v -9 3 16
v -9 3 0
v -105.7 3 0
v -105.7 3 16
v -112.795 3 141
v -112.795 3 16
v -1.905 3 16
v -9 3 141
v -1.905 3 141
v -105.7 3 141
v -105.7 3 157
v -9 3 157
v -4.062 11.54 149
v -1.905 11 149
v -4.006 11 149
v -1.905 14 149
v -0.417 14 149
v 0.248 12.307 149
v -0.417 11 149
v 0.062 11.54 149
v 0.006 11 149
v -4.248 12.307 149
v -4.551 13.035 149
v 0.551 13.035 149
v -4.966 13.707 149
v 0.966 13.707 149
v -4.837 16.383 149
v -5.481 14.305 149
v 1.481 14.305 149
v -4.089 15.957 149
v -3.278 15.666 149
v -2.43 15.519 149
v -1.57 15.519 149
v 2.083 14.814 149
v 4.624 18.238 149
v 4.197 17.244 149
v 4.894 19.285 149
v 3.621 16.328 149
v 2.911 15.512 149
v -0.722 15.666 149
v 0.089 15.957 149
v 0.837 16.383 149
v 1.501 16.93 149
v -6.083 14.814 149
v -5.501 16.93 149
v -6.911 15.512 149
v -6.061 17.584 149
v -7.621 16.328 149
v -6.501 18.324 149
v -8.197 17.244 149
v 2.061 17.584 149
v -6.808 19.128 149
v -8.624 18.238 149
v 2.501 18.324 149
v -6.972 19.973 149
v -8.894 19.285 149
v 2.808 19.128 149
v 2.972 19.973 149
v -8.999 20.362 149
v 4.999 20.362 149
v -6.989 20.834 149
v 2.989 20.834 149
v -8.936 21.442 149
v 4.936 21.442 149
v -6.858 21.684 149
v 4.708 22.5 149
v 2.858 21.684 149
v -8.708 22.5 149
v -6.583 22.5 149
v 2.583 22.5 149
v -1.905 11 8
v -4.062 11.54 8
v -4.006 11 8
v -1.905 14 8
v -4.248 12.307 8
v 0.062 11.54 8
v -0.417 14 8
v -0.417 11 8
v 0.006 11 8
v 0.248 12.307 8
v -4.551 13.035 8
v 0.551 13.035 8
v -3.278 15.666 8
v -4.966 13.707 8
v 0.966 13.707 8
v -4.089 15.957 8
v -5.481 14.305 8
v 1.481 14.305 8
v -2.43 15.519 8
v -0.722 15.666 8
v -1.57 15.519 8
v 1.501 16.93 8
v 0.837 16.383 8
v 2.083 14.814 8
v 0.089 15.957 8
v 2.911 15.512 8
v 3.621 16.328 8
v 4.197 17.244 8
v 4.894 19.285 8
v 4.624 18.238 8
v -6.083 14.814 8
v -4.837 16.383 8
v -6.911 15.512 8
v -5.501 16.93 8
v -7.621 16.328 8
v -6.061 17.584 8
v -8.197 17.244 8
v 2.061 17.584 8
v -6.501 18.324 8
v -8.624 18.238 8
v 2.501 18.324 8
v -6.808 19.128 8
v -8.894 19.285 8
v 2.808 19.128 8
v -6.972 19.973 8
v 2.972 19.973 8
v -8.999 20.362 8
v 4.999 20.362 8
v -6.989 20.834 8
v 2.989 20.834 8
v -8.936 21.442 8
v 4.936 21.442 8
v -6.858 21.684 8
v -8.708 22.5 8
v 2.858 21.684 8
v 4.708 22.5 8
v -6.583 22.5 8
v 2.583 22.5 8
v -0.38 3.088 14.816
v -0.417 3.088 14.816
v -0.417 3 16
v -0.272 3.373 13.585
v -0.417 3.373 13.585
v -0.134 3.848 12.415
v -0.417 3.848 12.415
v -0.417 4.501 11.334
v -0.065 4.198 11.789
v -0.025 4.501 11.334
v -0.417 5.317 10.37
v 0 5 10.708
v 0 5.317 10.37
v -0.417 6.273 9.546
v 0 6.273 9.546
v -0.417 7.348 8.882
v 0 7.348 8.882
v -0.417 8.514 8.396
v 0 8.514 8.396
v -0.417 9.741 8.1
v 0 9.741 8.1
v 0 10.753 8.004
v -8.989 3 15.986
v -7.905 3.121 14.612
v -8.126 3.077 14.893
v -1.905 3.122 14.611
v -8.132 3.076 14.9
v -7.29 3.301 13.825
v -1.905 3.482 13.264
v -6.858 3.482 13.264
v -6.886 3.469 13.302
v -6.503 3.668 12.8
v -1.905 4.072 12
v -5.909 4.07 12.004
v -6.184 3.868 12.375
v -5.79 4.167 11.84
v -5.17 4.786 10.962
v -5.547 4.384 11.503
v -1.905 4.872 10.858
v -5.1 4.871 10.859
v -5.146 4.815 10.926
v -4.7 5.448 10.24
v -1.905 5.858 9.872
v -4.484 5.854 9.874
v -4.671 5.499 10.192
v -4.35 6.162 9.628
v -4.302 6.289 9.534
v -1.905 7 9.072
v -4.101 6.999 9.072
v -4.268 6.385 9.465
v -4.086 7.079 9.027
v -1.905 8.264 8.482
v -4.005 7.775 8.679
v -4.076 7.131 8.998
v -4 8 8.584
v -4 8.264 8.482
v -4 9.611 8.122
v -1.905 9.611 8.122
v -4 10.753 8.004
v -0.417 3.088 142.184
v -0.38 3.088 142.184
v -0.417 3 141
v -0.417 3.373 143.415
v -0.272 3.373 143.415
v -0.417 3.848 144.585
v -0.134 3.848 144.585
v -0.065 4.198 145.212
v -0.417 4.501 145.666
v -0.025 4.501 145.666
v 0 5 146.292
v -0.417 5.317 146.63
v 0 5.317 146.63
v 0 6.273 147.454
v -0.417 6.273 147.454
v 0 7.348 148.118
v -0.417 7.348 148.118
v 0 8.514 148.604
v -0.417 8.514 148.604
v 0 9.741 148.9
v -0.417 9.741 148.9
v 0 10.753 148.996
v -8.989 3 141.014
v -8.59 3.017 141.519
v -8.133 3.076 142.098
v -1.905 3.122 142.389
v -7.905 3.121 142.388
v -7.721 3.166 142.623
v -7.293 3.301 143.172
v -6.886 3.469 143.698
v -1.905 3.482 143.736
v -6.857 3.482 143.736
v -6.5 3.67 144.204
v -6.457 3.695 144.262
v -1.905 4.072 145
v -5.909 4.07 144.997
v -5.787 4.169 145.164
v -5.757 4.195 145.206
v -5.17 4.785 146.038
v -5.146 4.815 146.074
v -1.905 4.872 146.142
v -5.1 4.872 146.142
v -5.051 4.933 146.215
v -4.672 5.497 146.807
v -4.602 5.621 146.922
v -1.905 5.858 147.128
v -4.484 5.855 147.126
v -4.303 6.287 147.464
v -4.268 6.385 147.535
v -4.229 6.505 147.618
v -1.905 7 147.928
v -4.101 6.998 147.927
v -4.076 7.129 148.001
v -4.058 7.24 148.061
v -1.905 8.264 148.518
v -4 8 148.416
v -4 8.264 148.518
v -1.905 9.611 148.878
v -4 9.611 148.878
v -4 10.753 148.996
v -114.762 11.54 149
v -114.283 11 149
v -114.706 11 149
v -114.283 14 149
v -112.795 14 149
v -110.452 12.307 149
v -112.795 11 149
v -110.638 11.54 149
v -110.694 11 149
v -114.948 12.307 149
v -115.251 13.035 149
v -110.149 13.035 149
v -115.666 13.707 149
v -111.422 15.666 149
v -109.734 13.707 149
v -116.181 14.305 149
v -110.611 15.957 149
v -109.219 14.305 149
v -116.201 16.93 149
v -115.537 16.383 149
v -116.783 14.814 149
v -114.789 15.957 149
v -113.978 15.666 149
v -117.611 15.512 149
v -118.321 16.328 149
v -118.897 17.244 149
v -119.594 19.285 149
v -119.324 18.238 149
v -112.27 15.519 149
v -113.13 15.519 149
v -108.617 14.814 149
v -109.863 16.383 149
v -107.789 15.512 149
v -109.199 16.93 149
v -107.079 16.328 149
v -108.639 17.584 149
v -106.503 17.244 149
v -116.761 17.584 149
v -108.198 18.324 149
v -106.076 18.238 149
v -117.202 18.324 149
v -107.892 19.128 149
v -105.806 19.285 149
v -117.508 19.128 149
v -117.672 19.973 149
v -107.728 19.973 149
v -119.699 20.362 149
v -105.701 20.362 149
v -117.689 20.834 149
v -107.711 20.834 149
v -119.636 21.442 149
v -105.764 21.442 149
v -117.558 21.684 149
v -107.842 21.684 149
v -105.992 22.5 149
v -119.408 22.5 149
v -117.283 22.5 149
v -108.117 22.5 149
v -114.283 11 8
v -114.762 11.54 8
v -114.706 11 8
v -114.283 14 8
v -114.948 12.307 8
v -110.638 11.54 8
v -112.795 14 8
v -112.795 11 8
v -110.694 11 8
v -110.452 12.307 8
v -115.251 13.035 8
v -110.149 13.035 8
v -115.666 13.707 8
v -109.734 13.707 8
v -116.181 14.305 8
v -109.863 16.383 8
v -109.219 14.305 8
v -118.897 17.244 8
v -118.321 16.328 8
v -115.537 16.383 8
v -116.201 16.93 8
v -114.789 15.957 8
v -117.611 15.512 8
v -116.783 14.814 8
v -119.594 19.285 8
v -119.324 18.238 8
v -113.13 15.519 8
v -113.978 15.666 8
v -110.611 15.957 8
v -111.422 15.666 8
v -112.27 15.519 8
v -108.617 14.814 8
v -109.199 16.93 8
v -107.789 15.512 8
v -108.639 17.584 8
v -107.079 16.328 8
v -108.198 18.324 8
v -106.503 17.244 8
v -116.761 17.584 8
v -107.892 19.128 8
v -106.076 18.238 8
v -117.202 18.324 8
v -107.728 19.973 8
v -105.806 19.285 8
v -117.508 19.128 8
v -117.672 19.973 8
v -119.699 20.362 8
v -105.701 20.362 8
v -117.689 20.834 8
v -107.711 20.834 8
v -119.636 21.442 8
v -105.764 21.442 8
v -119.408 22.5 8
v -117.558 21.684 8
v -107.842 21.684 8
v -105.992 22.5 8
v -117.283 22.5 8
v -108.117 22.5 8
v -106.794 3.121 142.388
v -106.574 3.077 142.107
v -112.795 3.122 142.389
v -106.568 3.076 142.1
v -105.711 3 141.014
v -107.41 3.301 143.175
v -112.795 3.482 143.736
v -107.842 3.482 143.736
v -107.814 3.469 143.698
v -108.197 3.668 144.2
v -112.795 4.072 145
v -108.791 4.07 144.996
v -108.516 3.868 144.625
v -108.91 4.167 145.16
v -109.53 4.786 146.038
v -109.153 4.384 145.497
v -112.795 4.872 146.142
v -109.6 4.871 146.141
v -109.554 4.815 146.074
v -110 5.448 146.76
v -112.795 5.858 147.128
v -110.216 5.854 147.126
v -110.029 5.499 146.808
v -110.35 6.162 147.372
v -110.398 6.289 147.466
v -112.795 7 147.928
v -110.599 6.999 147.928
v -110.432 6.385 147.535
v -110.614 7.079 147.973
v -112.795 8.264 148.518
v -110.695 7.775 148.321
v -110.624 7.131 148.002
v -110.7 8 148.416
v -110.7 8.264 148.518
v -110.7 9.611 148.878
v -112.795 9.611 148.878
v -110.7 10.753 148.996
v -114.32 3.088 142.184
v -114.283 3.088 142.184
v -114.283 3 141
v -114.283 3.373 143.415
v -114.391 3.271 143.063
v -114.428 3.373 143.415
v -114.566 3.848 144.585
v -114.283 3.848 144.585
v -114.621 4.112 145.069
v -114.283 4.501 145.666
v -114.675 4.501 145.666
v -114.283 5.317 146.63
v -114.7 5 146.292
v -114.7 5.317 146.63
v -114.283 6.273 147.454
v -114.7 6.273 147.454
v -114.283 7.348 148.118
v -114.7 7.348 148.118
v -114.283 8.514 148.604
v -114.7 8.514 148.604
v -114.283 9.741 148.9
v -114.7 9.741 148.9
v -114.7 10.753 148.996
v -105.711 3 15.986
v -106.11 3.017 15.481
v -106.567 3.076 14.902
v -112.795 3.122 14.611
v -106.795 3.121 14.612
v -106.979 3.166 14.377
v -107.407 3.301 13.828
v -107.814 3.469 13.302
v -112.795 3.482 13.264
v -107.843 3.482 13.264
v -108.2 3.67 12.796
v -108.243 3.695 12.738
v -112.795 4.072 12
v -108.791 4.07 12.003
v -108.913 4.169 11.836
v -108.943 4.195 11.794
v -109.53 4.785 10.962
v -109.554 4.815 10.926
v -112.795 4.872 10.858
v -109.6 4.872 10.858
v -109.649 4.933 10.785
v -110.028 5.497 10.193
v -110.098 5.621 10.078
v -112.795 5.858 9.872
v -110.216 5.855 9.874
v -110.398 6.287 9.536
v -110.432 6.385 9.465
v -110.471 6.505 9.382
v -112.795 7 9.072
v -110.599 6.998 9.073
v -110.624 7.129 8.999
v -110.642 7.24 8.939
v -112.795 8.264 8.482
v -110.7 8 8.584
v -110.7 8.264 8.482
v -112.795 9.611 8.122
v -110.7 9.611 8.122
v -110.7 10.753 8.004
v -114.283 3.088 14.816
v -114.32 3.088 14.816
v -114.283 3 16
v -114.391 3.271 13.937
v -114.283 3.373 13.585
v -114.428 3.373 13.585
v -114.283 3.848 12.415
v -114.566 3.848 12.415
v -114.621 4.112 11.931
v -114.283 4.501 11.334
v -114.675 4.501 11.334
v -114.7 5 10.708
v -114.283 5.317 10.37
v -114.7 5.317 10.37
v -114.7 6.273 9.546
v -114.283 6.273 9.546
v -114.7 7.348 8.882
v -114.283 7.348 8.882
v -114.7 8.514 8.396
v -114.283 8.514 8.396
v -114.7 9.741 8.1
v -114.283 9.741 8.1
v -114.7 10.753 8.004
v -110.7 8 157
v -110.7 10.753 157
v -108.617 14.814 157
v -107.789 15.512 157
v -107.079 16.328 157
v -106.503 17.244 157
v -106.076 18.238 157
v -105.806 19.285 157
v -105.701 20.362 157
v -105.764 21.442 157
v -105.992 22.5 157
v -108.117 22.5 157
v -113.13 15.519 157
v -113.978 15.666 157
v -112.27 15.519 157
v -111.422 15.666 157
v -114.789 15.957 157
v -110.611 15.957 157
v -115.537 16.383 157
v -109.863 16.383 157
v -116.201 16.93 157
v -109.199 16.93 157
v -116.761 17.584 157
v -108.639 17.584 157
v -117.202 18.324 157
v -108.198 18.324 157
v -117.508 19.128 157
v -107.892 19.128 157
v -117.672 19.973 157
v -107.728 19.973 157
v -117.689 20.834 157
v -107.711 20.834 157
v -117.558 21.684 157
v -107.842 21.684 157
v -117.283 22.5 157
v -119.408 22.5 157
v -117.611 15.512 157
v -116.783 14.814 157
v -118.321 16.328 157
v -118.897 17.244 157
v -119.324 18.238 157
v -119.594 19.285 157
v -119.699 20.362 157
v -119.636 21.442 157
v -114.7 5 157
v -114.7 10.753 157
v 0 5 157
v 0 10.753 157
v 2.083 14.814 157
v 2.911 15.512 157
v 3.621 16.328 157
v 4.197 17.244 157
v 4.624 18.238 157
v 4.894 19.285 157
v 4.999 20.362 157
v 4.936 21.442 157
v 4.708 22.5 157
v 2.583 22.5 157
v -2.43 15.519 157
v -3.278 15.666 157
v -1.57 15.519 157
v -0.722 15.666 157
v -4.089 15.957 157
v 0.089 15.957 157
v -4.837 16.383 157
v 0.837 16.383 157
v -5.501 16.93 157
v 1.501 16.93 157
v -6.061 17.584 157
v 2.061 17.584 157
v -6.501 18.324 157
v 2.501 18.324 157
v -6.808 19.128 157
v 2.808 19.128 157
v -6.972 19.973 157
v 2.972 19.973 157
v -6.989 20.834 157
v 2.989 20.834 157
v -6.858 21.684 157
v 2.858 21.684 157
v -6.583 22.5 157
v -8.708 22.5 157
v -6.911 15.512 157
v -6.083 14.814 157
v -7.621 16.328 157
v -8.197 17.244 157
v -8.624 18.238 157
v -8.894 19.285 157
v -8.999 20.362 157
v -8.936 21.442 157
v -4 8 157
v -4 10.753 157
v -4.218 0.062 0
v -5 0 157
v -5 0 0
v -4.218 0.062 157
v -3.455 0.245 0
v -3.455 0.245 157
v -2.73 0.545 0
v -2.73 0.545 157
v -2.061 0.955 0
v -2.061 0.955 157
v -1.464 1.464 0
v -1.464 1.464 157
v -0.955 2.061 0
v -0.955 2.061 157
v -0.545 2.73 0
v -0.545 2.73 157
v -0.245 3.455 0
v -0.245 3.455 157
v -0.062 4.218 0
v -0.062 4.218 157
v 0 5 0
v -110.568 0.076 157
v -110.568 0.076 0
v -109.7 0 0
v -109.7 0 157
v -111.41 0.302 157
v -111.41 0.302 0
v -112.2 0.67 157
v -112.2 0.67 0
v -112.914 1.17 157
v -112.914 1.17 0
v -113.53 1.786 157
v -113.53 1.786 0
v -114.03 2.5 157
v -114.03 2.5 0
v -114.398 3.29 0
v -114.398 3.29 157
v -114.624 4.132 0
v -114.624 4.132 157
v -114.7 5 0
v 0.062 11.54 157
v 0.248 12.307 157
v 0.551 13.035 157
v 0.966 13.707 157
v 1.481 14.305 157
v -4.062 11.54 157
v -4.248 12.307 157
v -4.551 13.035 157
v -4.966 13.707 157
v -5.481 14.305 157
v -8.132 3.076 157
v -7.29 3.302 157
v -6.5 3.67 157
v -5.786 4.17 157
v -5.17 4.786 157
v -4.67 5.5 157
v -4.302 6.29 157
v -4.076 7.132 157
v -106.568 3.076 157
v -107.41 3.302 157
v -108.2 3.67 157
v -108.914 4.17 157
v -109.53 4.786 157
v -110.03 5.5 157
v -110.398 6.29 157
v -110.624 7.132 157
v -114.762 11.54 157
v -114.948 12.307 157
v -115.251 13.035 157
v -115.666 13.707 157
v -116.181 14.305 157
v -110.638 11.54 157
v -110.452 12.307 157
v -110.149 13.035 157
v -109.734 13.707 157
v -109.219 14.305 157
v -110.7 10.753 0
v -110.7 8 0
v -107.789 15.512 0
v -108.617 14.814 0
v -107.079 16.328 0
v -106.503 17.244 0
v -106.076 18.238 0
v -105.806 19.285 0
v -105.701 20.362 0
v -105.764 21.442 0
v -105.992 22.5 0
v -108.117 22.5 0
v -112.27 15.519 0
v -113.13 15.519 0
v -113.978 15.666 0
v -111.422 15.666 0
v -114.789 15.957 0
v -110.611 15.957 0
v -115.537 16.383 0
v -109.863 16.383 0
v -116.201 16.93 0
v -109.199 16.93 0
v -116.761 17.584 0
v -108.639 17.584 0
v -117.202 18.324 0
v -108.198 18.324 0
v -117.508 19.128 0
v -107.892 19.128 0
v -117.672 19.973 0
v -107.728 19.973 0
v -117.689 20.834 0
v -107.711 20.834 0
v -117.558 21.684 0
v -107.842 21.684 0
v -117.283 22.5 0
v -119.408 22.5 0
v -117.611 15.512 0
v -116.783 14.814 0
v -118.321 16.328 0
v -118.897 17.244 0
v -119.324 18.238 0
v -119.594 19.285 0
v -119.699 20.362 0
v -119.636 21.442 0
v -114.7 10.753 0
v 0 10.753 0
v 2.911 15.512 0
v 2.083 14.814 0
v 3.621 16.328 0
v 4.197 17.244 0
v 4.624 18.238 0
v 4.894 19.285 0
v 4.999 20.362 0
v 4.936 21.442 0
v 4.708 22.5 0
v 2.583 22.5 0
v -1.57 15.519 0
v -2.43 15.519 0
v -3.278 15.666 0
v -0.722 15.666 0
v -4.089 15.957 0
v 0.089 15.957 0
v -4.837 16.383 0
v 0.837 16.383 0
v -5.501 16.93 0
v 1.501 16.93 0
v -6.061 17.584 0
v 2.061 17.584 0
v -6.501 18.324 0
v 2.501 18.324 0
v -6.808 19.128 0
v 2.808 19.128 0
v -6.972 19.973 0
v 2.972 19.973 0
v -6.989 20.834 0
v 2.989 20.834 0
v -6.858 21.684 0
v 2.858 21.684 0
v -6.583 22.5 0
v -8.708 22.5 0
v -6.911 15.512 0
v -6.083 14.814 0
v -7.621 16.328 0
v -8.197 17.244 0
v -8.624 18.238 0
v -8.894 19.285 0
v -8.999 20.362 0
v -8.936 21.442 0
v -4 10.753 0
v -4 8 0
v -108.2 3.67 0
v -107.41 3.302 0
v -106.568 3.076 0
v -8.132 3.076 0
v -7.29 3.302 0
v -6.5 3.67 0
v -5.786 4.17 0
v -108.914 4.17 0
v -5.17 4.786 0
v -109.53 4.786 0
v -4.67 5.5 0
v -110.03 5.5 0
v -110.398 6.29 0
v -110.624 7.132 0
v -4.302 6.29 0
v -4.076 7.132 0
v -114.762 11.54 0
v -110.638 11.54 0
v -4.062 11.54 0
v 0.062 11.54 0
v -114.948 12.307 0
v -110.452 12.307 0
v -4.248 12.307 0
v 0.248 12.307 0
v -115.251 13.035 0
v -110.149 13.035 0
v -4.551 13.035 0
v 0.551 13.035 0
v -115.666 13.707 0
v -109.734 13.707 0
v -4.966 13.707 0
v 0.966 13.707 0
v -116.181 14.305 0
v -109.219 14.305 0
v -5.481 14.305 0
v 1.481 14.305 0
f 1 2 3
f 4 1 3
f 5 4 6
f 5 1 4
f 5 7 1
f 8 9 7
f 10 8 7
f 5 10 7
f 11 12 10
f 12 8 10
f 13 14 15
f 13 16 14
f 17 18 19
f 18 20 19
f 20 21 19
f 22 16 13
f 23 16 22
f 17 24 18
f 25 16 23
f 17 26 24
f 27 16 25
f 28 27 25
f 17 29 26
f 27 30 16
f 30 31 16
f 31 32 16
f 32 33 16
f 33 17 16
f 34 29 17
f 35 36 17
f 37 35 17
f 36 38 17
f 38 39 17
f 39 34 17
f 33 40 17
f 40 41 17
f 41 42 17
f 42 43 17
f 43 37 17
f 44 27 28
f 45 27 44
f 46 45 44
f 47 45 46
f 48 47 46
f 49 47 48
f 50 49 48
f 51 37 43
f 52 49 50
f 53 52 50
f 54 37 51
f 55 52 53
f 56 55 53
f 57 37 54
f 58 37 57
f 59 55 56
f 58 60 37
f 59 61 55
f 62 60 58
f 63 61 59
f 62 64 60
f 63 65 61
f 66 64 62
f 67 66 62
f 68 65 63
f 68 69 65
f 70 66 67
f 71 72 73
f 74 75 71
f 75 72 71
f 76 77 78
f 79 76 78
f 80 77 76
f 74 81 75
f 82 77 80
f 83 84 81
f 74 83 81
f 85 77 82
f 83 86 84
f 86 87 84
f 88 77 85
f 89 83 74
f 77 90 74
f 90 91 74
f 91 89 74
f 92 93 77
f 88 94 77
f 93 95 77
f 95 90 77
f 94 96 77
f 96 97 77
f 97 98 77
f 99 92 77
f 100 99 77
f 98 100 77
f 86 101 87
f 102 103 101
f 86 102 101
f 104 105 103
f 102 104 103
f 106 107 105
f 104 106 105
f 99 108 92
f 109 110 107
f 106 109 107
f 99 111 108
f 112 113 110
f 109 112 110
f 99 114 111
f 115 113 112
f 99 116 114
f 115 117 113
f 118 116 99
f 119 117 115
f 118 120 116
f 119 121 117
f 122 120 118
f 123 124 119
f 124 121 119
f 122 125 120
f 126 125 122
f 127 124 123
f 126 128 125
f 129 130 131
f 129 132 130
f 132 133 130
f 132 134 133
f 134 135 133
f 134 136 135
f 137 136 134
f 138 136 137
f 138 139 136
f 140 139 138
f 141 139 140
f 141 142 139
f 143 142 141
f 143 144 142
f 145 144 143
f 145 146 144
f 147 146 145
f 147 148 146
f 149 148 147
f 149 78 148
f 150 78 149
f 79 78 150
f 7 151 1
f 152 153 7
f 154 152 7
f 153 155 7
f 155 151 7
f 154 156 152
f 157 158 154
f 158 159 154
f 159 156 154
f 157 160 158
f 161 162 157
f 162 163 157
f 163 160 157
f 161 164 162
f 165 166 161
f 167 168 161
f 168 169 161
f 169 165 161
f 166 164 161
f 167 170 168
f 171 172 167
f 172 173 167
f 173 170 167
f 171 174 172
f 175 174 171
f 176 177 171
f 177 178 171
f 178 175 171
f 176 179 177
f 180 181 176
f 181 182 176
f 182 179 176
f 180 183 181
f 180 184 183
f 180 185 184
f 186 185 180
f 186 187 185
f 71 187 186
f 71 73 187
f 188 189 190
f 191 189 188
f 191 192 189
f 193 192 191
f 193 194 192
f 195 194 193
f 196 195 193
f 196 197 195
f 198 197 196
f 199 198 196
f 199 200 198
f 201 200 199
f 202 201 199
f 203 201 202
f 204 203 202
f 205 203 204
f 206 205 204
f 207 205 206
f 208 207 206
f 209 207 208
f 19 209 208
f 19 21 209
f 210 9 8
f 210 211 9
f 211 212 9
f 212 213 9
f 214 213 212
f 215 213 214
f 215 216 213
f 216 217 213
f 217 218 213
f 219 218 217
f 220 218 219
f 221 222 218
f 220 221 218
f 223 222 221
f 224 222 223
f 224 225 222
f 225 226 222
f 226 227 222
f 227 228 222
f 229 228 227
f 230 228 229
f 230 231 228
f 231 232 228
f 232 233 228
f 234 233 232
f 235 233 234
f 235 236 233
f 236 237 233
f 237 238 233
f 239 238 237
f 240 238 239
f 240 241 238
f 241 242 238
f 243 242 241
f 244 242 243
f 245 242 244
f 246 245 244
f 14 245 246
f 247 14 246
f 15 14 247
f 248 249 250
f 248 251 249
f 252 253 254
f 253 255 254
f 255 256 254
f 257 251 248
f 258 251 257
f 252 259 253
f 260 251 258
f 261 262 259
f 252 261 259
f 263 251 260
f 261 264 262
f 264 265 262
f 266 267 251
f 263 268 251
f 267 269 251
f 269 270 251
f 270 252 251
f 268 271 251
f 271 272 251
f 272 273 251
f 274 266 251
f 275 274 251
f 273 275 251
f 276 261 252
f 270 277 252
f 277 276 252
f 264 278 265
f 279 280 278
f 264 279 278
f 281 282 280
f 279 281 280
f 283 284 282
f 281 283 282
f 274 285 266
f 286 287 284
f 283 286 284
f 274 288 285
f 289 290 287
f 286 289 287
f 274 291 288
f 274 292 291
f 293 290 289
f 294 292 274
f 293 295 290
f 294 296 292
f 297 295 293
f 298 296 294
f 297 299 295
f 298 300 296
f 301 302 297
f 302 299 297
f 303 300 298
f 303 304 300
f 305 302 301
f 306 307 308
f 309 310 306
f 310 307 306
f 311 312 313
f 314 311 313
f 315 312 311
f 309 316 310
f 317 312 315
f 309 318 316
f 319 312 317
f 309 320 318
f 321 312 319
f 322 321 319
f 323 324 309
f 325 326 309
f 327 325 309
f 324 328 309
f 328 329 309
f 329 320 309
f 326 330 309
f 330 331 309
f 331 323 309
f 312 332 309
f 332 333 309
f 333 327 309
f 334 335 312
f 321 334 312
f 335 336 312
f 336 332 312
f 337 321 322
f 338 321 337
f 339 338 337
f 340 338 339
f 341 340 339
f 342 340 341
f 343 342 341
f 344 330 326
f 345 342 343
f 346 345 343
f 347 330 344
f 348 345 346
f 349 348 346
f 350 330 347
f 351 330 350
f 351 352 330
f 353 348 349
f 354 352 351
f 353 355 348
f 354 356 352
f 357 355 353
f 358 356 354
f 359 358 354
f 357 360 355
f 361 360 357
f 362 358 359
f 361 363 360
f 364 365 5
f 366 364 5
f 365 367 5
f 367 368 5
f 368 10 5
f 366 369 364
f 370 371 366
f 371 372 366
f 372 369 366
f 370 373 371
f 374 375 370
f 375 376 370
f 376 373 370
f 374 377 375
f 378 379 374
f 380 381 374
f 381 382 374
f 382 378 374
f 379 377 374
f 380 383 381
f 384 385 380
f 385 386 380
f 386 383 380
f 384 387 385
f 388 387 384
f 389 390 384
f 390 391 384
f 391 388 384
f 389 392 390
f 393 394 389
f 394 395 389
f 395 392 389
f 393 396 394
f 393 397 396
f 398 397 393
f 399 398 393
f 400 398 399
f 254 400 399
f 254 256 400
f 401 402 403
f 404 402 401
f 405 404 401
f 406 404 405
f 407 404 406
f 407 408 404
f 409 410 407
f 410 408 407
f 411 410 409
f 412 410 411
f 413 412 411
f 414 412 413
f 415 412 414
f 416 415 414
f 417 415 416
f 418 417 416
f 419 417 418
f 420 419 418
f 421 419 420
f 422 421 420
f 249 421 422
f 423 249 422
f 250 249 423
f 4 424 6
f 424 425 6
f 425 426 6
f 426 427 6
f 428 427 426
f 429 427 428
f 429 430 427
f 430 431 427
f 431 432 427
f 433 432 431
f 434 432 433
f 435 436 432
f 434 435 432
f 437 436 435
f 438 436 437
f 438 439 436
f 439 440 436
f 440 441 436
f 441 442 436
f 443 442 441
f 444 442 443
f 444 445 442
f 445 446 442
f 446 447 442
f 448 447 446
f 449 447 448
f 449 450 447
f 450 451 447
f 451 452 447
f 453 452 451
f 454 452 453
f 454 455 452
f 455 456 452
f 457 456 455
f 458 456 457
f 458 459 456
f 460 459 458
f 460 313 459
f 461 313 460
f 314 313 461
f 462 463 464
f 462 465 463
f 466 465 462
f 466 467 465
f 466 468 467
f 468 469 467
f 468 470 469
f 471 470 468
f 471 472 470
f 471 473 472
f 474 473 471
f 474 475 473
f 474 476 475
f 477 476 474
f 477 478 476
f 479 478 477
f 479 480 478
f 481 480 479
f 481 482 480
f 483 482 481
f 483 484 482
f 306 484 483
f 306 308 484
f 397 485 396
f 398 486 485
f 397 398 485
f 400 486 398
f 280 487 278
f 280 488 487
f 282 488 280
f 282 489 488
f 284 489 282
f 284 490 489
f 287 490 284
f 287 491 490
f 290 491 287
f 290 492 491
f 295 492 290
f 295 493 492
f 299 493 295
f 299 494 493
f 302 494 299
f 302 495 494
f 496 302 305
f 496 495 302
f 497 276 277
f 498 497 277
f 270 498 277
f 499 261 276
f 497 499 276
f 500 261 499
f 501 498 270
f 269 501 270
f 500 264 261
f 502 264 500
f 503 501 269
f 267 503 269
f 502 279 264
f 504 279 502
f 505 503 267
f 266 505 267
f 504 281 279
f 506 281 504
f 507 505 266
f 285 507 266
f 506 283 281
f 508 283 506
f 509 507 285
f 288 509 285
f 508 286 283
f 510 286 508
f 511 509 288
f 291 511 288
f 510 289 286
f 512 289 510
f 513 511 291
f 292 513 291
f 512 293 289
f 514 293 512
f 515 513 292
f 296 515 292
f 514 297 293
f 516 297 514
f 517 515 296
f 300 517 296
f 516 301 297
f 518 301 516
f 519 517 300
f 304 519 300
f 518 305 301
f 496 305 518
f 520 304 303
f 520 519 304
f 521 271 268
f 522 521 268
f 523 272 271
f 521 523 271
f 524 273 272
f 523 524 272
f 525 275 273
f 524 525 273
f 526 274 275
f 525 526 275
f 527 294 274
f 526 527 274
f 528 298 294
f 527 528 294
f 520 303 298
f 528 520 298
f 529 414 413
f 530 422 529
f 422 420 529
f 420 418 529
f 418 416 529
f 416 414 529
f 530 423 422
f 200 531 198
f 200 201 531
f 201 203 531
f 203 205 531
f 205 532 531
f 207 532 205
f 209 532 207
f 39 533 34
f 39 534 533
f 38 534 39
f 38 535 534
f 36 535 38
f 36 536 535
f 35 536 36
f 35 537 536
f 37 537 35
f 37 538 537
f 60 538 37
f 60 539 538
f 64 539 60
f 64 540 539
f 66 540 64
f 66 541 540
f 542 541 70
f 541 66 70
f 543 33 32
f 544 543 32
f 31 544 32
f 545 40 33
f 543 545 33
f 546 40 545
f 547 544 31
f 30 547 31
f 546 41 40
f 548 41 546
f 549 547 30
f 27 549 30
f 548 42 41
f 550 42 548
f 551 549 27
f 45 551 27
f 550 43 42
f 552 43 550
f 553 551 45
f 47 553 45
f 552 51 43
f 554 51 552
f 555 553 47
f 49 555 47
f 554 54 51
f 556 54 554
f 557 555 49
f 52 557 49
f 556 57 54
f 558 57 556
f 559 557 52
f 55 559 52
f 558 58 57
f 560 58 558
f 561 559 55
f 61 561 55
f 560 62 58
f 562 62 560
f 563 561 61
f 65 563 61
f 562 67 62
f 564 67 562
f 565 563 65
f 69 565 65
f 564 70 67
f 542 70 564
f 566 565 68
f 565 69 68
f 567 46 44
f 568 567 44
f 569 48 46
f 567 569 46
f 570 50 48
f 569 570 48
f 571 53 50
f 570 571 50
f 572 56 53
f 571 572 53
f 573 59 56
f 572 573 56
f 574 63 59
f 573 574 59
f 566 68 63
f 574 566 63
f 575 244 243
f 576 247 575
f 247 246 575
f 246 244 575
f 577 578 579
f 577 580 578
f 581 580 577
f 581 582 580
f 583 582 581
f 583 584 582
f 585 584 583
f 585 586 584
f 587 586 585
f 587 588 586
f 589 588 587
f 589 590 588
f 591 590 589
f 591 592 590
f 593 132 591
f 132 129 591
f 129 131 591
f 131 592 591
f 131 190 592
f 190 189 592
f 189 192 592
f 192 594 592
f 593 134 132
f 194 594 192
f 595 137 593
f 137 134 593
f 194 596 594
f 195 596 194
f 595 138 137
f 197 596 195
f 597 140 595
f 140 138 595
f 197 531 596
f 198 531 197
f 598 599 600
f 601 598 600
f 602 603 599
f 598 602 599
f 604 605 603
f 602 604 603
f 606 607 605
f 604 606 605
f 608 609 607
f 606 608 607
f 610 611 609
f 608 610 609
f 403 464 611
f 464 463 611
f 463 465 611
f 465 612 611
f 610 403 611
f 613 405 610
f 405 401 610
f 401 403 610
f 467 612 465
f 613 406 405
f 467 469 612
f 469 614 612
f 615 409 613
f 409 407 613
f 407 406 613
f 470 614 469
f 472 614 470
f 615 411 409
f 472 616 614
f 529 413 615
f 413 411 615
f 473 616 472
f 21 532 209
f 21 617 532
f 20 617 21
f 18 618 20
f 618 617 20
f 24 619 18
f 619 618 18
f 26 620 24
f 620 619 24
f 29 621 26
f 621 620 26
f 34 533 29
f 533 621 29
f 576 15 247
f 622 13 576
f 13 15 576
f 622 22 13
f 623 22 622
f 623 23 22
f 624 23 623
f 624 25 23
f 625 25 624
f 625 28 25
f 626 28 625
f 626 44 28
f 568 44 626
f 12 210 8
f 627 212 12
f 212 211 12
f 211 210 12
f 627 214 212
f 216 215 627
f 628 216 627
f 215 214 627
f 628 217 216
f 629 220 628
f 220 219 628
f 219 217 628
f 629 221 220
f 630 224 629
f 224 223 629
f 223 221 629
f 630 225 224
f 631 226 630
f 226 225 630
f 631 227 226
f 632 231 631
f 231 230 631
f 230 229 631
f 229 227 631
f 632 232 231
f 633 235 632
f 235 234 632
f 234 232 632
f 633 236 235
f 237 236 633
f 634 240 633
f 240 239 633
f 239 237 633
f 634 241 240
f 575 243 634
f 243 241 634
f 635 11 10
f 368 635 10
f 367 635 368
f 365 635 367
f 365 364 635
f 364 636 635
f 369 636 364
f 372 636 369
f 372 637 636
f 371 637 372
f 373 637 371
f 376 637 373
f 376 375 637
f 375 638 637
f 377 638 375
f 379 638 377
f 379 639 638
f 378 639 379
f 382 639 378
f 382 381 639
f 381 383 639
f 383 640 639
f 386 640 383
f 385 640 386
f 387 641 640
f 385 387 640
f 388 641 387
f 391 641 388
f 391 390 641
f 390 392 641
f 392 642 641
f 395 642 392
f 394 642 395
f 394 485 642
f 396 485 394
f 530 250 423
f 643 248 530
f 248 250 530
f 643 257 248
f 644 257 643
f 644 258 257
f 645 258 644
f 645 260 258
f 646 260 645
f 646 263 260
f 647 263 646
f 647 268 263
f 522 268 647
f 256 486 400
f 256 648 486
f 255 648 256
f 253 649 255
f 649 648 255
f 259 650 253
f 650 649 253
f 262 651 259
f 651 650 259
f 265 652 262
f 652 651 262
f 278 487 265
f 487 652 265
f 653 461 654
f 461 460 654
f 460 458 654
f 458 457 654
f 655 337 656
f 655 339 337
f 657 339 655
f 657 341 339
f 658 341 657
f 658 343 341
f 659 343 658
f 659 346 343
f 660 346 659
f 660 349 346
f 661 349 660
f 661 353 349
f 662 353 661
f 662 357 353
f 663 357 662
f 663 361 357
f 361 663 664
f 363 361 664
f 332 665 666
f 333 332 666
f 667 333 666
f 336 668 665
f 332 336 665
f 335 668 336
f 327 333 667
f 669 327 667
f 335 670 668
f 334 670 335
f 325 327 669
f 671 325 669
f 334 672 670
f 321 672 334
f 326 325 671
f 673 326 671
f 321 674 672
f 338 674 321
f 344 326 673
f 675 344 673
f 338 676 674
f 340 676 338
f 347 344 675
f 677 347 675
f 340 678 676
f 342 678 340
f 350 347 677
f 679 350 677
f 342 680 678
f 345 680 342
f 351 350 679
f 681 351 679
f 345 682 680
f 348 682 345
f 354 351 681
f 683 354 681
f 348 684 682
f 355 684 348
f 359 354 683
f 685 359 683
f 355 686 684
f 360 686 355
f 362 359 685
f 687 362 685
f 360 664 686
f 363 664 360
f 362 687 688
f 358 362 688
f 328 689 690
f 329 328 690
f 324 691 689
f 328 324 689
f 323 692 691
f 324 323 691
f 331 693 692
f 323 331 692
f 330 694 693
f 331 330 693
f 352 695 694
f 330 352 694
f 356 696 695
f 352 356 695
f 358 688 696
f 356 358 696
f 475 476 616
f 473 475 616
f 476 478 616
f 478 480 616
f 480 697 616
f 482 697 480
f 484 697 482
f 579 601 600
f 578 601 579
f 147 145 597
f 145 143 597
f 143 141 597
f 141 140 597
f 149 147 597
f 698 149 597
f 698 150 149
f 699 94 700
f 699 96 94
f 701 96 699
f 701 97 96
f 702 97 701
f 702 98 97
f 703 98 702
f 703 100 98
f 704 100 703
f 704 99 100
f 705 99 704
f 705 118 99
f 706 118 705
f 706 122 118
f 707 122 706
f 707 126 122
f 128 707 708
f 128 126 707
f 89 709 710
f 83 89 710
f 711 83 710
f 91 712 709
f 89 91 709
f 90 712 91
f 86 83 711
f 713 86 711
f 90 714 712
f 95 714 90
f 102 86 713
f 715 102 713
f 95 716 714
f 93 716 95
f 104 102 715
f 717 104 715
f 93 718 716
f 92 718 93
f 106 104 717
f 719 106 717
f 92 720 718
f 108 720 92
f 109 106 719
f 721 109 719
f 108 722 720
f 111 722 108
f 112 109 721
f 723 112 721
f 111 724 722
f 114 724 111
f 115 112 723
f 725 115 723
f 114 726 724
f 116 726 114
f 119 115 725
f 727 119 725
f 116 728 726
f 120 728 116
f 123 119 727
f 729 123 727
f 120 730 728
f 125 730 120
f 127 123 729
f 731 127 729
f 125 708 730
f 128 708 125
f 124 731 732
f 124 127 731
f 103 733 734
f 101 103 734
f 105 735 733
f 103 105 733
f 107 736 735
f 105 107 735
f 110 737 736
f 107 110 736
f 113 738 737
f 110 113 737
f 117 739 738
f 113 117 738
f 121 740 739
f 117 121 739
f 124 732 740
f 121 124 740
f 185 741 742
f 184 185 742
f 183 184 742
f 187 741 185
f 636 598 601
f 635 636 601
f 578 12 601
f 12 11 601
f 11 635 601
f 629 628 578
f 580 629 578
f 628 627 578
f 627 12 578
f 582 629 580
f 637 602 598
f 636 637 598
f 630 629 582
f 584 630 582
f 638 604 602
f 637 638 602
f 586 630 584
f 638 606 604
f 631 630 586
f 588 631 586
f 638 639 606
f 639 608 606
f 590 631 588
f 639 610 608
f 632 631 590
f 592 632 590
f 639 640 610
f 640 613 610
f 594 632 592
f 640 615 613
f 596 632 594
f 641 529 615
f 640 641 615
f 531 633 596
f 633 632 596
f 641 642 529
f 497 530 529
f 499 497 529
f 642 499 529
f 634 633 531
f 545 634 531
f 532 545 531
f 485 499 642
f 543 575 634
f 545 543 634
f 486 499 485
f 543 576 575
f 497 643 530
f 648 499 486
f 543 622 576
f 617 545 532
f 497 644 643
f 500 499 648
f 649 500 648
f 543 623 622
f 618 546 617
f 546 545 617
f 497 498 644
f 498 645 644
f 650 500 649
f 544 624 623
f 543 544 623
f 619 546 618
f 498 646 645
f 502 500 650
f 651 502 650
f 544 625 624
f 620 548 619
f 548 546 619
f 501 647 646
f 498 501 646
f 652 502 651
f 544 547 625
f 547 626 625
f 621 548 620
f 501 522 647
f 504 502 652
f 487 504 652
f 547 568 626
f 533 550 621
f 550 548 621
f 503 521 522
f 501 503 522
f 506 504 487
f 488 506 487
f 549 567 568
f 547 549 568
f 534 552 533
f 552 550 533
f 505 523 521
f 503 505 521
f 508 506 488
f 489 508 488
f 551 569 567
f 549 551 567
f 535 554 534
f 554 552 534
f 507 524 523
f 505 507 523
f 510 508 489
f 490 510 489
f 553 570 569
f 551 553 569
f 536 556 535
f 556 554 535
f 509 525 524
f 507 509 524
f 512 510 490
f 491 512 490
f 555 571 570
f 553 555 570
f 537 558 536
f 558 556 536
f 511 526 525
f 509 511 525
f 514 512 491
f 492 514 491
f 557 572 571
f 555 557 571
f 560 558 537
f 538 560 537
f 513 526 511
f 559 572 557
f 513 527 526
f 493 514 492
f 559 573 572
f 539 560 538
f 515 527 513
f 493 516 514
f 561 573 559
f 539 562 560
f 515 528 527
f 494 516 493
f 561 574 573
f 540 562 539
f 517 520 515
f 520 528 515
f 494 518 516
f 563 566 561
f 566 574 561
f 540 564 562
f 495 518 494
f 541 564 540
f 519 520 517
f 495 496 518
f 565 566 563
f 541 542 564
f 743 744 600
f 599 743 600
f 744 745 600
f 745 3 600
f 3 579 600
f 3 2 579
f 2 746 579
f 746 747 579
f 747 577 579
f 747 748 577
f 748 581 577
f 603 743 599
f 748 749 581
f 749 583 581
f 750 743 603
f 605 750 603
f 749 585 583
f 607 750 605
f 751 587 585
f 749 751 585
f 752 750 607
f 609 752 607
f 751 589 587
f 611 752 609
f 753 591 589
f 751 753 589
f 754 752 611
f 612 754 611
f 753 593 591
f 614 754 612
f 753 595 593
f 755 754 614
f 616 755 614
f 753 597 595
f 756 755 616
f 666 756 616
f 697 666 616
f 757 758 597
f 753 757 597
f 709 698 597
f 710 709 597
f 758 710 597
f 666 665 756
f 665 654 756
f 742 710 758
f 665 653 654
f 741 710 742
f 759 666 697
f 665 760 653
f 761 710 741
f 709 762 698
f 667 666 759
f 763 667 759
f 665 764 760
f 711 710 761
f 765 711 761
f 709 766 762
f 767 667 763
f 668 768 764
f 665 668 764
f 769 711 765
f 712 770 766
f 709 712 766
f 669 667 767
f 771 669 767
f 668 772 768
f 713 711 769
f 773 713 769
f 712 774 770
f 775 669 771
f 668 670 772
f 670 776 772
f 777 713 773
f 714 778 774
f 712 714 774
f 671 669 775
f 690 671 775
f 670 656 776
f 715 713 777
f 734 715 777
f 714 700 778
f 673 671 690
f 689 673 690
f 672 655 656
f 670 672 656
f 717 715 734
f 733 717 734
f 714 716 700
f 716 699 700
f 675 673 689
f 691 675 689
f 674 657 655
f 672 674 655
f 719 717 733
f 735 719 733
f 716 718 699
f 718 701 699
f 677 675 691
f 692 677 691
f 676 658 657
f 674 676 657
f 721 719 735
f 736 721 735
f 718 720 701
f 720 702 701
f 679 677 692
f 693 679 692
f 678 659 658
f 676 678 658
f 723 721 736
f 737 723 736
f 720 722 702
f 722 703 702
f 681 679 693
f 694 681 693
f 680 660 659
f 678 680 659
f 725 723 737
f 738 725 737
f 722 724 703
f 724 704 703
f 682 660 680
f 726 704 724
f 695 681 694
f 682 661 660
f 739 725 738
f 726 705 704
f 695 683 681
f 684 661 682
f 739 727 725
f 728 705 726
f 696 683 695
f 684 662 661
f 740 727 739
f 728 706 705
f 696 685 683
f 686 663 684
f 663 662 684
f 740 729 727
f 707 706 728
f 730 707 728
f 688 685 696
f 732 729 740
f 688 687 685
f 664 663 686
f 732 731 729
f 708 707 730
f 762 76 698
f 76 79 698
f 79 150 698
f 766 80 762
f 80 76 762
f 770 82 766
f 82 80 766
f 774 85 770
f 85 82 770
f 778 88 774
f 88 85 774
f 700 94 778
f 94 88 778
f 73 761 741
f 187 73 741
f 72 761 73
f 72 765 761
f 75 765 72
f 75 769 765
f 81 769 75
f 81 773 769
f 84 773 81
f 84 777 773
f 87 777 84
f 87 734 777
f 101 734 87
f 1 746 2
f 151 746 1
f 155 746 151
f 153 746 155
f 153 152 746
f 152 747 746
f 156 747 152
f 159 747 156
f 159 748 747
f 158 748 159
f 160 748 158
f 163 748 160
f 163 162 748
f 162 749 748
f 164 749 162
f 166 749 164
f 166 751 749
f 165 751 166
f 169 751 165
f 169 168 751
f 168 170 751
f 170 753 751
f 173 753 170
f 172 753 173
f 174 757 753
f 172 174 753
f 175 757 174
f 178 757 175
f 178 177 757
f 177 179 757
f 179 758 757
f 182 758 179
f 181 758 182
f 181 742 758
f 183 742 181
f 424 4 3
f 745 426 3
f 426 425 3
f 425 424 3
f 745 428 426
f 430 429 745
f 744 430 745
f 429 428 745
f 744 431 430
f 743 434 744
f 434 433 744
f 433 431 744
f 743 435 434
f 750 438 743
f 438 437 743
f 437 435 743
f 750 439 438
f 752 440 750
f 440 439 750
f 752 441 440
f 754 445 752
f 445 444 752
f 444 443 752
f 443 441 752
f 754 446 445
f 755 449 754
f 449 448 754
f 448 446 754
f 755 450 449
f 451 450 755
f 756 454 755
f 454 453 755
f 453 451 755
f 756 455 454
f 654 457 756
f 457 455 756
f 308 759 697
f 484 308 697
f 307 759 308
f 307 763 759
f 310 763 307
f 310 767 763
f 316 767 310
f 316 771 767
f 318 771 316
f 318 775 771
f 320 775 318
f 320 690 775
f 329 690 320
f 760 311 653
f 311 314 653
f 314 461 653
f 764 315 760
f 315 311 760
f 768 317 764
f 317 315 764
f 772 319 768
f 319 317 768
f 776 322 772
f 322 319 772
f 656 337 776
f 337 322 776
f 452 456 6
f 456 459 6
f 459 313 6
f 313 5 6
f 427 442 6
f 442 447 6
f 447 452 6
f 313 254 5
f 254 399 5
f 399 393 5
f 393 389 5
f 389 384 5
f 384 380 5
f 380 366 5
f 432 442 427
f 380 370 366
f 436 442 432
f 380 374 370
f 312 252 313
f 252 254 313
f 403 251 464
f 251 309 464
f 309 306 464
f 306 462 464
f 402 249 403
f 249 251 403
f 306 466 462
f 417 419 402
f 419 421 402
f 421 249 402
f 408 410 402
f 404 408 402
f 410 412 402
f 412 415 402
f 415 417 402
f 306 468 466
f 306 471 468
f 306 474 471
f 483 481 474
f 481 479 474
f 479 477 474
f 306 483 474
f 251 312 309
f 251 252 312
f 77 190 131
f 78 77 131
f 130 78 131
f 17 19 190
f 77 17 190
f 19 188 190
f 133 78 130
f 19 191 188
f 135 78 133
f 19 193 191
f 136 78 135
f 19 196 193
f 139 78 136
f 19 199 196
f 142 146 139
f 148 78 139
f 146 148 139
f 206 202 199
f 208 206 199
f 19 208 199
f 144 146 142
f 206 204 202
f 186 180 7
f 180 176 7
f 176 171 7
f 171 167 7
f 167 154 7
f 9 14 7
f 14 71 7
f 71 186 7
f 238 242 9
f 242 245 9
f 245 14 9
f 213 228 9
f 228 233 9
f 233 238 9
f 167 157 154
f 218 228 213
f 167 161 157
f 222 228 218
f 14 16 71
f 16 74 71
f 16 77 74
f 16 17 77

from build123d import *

# Parameters (mm, degrees)
BOSS_EXTRUDE1_DEPTH     = 157
FILLET1_R               = 5
CUT_EXTRUDE1_DEPTH      = 199.704151945
CUT_EXTRUDE1_DEPTH_BACK = 199.704151945
SKETCH2_W               = 141
SKETCH2_H               = 19.5
FILLET5_R               = 8
SKETCH4_W               = 1.487907189
SKETCH4_H               = 11
BOSS_EXTRUDE5_DEPTH     = 141


with BuildPart() as part:
    # Sketch1 → Boss-Extrude1 (new body)
    with BuildSketch(Plane.XY):
        with BuildLine():
            Line((-110.7, 13.791796068), (-110.7, 3))
            Line((-110.7, 3), (-4, 3))
            Line((-4, 3), (-4, 13.791796068))
            ThreePointArc((-4, 13.791796068), (-8.157630053, 17.170797072), (-8.708203932, 22.5))
            Line((-8.708203932, 22.5), (-6.582575695, 22.5))
            ThreePointArc((-6.582575695, 22.5), (-2, 15.5), (2.582575695, 22.5))
            Line((2.582575695, 22.5), (4.708203932, 22.5))
            ThreePointArc((4.708203932, 22.5), (4.157630053, 17.170797072), (0, 13.791796068))
            Line((0, 13.791796068), (0, 2))
            Line((0, 2), (0, 0))
            Line((0, 0), (-114.7, 0))
            Line((-114.7, 0), (-114.7, 2))
            Line((-114.7, 2), (-114.7, 13.791796068))
            ThreePointArc((-114.7, 13.791796068), (-118.857630053, 17.170797072), (-119.408203932, 22.5))
            Line((-119.408203932, 22.5), (-117.282575695, 22.5))
            ThreePointArc((-117.282575695, 22.5), (-112.7, 15.5), (-108.117424305, 22.5))
            Line((-108.117424305, 22.5), (-105.991796068, 22.5))
            ThreePointArc((-105.991796068, 22.5), (-106.542369947, 17.170797072), (-110.7, 13.791796068))
        make_face()
    extrude(amount=BOSS_EXTRUDE1_DEPTH)

    # Fillet1
    fillet1_edges = [part.edges().sort_by_distance(p)[0] for p in [
        (-110.7, 3, 78.5),
        (-4, 3, 78.5),
        (-4, 13.791796068, 78.5),
        (0, 13.791796068, 78.5),
        (0, 0, 78.5),
        (-114.7, 0, 78.5),
        (-114.7, 13.791796068, 78.5),
        (-110.7, 13.791796068, 78.5),
    ]]
    fillet(fillet1_edges, radius=FILLET1_R)

    # Sketch2 → Cut-Extrude1 (cut, two sides: drawn at the far end of the back side and taken through both)
    with BuildSketch(Plane.ZY.offset(114.7).offset(-CUT_EXTRUDE1_DEPTH_BACK)):
        with Locations((78.5, 12.75)):
            Rectangle(SKETCH2_W, SKETCH2_H)
    extrude(amount=CUT_EXTRUDE1_DEPTH + CUT_EXTRUDE1_DEPTH_BACK, mode=Mode.SUBTRACT)

    # Fillet5
    fillet5_edges = [part.edges().sort_by_distance(p)[0] for p in [
        (-4.708712153, 3, 8),
        (-4.708712153, 3, 149),
        (-109.991287847, 3, 149),
        (-109.991287847, 3, 8),
    ]]
    fillet(fillet5_edges, radius=FILLET5_R)

    # Sketch4 → Boss-Extrude5 (add)
    with BuildSketch(Plane.XY.offset(8)):
        with Locations((-113.538622101, 8.5)):
            Rectangle(SKETCH4_W, SKETCH4_H)
        with Locations((-1.1613779, 8.5)):
            Rectangle(SKETCH4_W, SKETCH4_H)
    extrude(amount=BOSS_EXTRUDE5_DEPTH)


solid = part.part
